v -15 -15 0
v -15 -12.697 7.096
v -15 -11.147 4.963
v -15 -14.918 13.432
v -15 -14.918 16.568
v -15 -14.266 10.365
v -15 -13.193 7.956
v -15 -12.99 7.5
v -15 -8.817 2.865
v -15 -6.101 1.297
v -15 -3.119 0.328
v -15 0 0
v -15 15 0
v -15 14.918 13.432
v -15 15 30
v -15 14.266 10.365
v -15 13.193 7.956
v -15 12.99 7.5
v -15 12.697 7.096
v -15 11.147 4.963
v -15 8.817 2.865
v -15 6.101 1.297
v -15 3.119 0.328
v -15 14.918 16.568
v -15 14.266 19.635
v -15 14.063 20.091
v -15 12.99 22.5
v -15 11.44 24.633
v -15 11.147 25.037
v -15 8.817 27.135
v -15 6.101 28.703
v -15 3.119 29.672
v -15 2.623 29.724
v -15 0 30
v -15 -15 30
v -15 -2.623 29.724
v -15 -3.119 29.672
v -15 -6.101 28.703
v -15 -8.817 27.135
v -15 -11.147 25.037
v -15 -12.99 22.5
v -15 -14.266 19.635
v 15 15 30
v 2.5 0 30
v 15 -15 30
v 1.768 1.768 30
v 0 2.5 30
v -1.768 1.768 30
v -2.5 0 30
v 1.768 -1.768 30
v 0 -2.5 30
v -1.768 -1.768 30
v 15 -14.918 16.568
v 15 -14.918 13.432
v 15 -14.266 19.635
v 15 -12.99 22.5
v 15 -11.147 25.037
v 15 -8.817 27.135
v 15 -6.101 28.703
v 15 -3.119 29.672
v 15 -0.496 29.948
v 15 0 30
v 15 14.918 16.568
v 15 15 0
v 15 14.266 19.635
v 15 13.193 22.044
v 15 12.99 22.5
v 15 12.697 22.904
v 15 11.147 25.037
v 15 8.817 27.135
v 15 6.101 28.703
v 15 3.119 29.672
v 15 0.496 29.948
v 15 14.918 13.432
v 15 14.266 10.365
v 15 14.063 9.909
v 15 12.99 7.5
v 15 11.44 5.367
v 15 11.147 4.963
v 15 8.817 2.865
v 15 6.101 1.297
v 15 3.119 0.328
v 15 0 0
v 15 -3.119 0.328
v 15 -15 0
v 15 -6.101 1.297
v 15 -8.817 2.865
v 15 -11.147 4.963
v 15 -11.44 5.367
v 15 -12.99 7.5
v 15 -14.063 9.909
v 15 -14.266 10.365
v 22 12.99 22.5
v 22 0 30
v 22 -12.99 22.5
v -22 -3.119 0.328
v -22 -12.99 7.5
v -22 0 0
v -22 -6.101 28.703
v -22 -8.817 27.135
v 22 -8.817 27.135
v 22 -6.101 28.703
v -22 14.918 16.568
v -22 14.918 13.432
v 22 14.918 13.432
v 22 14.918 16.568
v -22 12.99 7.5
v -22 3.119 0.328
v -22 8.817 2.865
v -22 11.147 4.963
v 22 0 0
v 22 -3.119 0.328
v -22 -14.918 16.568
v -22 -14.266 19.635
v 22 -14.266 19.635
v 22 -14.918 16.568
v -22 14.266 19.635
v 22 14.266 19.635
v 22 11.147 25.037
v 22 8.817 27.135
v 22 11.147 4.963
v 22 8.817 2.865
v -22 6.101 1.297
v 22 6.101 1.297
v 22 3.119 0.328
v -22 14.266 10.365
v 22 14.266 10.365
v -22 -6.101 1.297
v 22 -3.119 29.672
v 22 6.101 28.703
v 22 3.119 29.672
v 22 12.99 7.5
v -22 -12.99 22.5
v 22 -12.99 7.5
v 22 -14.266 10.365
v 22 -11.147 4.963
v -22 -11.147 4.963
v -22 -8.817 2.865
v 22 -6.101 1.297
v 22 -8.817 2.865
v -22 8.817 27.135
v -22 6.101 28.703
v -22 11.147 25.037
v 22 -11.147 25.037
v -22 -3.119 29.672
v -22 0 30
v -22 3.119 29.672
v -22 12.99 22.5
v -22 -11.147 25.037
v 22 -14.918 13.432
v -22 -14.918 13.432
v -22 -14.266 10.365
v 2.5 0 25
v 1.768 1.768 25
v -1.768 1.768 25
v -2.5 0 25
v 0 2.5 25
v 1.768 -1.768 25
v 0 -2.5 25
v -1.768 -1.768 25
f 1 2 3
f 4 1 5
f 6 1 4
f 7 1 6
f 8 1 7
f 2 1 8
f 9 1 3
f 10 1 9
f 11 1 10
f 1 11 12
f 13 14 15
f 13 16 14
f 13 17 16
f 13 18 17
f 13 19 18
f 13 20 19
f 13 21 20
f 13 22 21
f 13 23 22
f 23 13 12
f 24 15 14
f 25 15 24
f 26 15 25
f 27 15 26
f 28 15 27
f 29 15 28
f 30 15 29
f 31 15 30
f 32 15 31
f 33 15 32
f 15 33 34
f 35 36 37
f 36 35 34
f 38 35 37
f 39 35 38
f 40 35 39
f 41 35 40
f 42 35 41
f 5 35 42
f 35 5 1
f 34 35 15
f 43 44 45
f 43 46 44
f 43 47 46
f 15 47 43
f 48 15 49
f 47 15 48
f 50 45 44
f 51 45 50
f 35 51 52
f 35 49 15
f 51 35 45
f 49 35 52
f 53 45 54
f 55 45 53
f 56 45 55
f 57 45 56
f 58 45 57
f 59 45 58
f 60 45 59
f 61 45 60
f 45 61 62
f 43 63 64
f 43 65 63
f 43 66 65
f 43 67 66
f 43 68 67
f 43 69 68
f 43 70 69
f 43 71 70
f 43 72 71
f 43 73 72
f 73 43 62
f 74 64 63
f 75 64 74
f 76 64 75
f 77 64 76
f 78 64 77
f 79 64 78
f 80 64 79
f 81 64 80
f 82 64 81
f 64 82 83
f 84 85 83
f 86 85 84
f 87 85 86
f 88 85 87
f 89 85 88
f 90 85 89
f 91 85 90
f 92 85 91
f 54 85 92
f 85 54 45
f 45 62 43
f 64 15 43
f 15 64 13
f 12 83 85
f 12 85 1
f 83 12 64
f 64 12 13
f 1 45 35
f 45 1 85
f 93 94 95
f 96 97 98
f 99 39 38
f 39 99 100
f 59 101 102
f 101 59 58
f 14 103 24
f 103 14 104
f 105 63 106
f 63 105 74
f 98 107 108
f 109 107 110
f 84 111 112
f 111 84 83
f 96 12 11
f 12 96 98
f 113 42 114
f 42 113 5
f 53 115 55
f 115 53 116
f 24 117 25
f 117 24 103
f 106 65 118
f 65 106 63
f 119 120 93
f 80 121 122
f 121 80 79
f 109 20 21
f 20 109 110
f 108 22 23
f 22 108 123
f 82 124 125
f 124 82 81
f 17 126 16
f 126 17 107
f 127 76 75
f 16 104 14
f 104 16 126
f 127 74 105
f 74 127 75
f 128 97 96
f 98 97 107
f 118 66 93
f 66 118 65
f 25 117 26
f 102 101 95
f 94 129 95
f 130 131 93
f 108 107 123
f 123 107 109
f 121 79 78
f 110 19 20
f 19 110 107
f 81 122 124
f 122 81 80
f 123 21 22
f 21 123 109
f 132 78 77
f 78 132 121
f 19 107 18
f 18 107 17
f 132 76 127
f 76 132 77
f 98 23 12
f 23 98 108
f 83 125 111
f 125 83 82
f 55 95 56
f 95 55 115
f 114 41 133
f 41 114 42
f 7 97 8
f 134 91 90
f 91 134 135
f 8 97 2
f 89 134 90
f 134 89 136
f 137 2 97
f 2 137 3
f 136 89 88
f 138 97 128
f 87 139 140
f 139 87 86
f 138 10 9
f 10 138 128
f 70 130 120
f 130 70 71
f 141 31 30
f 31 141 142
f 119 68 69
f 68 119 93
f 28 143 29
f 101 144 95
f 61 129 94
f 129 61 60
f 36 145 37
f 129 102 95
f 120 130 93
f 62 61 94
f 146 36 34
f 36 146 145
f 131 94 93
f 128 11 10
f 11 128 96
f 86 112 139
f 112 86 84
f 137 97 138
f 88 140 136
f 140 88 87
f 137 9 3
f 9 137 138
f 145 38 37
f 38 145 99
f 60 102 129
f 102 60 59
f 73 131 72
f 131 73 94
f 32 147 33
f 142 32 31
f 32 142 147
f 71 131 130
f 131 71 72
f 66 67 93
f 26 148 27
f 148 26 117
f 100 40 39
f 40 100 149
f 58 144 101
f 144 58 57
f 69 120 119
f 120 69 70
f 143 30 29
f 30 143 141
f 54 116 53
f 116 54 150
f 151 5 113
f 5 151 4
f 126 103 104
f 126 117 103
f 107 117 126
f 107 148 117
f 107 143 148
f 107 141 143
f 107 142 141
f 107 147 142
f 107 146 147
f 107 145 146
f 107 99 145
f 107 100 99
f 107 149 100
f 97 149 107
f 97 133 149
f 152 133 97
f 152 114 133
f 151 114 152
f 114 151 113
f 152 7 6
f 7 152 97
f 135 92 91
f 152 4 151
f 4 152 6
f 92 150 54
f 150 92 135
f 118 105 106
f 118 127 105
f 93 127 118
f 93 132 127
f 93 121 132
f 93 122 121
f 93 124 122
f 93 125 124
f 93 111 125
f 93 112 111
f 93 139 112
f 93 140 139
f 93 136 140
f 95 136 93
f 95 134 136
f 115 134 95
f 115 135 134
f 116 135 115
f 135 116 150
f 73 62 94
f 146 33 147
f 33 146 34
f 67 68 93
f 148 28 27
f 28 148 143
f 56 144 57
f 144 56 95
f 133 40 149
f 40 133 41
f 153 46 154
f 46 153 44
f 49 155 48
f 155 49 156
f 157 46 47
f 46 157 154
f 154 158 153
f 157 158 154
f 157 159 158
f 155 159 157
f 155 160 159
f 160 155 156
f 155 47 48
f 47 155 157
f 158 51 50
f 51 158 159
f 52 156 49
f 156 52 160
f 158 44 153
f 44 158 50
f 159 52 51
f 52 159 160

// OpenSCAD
cube_size = 30; // [10:Small,20:Medium,30:Large]

hole_diameter = 5; 
hole_radius = hole_diameter/2;

// How deep should the center hole be?
hole_depth = 5; // [0,1,5,50]

show_wheels = "yes"; // [yes,no]

// How thick should the side wheels be?
wheel_thickness = 7; // [1:40]

// ignore this variable!
// foo=1;

// don't turn functions into params!
function BEZ03(u) = pow((1-u), 3);

// ignore variable values
bing = 3+4;
baz = 3 / hole_depth;

difference() {
  union() {
    translate([0, 0, cube_size/2]) cube([cube_size,cube_size,cube_size], center=true);
    if (show_wheels == "yes") {
      translate([0, 0, cube_size/2]) rotate([0, 90, 0]) {
        cylinder(r=cube_size/2, h=cube_size+(wheel_thickness*2), center=true);
      }
    }
  }
  translate([0, 0, cube_size-hole_depth]) cylinder(r=hole_radius, h=hole_depth);
}
        
